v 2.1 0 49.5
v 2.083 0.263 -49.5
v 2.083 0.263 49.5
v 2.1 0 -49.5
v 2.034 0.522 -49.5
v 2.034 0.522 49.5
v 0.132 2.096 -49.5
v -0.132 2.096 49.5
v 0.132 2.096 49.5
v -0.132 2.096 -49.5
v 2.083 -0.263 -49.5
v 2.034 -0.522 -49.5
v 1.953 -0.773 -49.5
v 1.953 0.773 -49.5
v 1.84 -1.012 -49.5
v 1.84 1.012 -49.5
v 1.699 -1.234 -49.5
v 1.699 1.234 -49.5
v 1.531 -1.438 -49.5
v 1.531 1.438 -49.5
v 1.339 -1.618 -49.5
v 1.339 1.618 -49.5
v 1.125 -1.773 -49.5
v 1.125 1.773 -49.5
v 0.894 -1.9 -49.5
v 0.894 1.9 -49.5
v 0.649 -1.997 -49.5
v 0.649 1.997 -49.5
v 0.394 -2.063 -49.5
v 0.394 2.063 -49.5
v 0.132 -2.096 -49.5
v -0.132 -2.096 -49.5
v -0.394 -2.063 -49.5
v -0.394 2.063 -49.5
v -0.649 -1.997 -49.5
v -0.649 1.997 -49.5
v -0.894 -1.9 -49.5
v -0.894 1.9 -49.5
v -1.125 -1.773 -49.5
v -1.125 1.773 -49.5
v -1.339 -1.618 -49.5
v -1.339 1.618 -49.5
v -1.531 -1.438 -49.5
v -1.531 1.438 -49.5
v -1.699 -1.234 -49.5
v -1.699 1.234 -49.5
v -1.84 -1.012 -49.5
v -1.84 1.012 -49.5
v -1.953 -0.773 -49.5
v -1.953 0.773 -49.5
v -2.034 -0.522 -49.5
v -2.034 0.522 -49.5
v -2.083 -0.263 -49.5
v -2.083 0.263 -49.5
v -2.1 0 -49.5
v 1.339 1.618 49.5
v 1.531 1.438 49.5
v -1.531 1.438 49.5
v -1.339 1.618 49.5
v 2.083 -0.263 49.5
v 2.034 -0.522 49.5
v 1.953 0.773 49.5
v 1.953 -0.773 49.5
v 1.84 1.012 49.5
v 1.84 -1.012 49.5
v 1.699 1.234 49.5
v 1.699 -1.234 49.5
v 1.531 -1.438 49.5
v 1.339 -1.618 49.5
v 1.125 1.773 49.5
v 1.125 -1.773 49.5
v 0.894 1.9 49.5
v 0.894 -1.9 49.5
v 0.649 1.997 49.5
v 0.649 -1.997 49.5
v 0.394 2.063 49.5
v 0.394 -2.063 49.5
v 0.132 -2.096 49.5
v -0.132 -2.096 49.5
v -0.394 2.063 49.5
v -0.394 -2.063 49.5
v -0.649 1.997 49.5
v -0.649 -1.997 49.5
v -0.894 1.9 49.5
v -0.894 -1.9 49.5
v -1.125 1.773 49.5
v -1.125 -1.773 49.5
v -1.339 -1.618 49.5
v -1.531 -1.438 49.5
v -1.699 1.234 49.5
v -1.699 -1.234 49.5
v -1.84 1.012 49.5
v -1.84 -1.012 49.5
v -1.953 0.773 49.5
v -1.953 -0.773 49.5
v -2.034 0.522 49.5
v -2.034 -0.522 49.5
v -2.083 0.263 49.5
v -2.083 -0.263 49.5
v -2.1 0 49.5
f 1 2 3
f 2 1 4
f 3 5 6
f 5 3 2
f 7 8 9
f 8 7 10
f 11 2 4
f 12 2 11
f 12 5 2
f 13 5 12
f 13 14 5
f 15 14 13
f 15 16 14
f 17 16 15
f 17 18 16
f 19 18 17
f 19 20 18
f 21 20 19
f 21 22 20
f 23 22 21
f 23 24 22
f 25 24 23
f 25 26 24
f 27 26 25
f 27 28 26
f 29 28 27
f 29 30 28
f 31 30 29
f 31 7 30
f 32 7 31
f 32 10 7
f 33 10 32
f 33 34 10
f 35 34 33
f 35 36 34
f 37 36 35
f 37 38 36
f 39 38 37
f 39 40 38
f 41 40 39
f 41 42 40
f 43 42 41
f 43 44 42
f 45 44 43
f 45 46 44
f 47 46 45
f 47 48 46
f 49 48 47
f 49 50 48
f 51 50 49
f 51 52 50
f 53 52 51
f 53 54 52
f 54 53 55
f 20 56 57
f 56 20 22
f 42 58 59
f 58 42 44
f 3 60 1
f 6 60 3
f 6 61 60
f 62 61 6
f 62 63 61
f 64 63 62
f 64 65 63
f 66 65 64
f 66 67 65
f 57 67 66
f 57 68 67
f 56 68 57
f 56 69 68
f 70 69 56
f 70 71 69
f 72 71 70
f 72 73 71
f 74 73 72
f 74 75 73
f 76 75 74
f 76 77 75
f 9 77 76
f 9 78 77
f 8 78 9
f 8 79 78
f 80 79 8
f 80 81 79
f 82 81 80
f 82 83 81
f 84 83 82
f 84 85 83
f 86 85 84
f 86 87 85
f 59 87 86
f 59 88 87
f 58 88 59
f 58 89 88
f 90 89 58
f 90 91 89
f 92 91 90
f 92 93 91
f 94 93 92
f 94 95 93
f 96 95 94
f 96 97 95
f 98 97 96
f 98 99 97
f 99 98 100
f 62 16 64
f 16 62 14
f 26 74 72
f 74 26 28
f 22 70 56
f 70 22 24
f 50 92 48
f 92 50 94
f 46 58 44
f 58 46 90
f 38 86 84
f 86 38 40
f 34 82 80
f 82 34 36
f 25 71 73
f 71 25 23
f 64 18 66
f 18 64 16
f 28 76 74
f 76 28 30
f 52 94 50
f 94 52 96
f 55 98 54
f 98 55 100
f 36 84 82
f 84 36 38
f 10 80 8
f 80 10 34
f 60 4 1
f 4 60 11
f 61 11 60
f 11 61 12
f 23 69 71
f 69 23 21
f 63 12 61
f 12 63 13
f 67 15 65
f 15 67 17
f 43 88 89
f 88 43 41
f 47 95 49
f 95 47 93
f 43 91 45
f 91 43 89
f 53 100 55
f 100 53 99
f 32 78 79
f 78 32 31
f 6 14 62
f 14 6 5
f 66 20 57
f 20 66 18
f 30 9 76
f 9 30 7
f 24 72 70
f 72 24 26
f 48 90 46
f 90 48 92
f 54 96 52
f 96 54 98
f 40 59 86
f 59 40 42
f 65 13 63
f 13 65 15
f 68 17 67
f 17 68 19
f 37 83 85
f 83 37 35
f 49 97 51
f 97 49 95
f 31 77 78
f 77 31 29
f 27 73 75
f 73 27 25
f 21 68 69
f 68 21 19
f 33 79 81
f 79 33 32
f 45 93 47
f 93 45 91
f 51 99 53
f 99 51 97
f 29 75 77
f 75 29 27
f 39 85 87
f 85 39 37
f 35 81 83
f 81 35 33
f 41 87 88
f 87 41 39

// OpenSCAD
$fn = 50;


difference() {
	union() {
		translate(v = [0, 0, -49.5000000000]) {
			cylinder(h = 99, r = 2.1000000000);
		}
	}
	union() {
		translate(v = [0, 0, -100.0000000000]) {
			cylinder(h = 200, r = 0);
		}
	}
}
